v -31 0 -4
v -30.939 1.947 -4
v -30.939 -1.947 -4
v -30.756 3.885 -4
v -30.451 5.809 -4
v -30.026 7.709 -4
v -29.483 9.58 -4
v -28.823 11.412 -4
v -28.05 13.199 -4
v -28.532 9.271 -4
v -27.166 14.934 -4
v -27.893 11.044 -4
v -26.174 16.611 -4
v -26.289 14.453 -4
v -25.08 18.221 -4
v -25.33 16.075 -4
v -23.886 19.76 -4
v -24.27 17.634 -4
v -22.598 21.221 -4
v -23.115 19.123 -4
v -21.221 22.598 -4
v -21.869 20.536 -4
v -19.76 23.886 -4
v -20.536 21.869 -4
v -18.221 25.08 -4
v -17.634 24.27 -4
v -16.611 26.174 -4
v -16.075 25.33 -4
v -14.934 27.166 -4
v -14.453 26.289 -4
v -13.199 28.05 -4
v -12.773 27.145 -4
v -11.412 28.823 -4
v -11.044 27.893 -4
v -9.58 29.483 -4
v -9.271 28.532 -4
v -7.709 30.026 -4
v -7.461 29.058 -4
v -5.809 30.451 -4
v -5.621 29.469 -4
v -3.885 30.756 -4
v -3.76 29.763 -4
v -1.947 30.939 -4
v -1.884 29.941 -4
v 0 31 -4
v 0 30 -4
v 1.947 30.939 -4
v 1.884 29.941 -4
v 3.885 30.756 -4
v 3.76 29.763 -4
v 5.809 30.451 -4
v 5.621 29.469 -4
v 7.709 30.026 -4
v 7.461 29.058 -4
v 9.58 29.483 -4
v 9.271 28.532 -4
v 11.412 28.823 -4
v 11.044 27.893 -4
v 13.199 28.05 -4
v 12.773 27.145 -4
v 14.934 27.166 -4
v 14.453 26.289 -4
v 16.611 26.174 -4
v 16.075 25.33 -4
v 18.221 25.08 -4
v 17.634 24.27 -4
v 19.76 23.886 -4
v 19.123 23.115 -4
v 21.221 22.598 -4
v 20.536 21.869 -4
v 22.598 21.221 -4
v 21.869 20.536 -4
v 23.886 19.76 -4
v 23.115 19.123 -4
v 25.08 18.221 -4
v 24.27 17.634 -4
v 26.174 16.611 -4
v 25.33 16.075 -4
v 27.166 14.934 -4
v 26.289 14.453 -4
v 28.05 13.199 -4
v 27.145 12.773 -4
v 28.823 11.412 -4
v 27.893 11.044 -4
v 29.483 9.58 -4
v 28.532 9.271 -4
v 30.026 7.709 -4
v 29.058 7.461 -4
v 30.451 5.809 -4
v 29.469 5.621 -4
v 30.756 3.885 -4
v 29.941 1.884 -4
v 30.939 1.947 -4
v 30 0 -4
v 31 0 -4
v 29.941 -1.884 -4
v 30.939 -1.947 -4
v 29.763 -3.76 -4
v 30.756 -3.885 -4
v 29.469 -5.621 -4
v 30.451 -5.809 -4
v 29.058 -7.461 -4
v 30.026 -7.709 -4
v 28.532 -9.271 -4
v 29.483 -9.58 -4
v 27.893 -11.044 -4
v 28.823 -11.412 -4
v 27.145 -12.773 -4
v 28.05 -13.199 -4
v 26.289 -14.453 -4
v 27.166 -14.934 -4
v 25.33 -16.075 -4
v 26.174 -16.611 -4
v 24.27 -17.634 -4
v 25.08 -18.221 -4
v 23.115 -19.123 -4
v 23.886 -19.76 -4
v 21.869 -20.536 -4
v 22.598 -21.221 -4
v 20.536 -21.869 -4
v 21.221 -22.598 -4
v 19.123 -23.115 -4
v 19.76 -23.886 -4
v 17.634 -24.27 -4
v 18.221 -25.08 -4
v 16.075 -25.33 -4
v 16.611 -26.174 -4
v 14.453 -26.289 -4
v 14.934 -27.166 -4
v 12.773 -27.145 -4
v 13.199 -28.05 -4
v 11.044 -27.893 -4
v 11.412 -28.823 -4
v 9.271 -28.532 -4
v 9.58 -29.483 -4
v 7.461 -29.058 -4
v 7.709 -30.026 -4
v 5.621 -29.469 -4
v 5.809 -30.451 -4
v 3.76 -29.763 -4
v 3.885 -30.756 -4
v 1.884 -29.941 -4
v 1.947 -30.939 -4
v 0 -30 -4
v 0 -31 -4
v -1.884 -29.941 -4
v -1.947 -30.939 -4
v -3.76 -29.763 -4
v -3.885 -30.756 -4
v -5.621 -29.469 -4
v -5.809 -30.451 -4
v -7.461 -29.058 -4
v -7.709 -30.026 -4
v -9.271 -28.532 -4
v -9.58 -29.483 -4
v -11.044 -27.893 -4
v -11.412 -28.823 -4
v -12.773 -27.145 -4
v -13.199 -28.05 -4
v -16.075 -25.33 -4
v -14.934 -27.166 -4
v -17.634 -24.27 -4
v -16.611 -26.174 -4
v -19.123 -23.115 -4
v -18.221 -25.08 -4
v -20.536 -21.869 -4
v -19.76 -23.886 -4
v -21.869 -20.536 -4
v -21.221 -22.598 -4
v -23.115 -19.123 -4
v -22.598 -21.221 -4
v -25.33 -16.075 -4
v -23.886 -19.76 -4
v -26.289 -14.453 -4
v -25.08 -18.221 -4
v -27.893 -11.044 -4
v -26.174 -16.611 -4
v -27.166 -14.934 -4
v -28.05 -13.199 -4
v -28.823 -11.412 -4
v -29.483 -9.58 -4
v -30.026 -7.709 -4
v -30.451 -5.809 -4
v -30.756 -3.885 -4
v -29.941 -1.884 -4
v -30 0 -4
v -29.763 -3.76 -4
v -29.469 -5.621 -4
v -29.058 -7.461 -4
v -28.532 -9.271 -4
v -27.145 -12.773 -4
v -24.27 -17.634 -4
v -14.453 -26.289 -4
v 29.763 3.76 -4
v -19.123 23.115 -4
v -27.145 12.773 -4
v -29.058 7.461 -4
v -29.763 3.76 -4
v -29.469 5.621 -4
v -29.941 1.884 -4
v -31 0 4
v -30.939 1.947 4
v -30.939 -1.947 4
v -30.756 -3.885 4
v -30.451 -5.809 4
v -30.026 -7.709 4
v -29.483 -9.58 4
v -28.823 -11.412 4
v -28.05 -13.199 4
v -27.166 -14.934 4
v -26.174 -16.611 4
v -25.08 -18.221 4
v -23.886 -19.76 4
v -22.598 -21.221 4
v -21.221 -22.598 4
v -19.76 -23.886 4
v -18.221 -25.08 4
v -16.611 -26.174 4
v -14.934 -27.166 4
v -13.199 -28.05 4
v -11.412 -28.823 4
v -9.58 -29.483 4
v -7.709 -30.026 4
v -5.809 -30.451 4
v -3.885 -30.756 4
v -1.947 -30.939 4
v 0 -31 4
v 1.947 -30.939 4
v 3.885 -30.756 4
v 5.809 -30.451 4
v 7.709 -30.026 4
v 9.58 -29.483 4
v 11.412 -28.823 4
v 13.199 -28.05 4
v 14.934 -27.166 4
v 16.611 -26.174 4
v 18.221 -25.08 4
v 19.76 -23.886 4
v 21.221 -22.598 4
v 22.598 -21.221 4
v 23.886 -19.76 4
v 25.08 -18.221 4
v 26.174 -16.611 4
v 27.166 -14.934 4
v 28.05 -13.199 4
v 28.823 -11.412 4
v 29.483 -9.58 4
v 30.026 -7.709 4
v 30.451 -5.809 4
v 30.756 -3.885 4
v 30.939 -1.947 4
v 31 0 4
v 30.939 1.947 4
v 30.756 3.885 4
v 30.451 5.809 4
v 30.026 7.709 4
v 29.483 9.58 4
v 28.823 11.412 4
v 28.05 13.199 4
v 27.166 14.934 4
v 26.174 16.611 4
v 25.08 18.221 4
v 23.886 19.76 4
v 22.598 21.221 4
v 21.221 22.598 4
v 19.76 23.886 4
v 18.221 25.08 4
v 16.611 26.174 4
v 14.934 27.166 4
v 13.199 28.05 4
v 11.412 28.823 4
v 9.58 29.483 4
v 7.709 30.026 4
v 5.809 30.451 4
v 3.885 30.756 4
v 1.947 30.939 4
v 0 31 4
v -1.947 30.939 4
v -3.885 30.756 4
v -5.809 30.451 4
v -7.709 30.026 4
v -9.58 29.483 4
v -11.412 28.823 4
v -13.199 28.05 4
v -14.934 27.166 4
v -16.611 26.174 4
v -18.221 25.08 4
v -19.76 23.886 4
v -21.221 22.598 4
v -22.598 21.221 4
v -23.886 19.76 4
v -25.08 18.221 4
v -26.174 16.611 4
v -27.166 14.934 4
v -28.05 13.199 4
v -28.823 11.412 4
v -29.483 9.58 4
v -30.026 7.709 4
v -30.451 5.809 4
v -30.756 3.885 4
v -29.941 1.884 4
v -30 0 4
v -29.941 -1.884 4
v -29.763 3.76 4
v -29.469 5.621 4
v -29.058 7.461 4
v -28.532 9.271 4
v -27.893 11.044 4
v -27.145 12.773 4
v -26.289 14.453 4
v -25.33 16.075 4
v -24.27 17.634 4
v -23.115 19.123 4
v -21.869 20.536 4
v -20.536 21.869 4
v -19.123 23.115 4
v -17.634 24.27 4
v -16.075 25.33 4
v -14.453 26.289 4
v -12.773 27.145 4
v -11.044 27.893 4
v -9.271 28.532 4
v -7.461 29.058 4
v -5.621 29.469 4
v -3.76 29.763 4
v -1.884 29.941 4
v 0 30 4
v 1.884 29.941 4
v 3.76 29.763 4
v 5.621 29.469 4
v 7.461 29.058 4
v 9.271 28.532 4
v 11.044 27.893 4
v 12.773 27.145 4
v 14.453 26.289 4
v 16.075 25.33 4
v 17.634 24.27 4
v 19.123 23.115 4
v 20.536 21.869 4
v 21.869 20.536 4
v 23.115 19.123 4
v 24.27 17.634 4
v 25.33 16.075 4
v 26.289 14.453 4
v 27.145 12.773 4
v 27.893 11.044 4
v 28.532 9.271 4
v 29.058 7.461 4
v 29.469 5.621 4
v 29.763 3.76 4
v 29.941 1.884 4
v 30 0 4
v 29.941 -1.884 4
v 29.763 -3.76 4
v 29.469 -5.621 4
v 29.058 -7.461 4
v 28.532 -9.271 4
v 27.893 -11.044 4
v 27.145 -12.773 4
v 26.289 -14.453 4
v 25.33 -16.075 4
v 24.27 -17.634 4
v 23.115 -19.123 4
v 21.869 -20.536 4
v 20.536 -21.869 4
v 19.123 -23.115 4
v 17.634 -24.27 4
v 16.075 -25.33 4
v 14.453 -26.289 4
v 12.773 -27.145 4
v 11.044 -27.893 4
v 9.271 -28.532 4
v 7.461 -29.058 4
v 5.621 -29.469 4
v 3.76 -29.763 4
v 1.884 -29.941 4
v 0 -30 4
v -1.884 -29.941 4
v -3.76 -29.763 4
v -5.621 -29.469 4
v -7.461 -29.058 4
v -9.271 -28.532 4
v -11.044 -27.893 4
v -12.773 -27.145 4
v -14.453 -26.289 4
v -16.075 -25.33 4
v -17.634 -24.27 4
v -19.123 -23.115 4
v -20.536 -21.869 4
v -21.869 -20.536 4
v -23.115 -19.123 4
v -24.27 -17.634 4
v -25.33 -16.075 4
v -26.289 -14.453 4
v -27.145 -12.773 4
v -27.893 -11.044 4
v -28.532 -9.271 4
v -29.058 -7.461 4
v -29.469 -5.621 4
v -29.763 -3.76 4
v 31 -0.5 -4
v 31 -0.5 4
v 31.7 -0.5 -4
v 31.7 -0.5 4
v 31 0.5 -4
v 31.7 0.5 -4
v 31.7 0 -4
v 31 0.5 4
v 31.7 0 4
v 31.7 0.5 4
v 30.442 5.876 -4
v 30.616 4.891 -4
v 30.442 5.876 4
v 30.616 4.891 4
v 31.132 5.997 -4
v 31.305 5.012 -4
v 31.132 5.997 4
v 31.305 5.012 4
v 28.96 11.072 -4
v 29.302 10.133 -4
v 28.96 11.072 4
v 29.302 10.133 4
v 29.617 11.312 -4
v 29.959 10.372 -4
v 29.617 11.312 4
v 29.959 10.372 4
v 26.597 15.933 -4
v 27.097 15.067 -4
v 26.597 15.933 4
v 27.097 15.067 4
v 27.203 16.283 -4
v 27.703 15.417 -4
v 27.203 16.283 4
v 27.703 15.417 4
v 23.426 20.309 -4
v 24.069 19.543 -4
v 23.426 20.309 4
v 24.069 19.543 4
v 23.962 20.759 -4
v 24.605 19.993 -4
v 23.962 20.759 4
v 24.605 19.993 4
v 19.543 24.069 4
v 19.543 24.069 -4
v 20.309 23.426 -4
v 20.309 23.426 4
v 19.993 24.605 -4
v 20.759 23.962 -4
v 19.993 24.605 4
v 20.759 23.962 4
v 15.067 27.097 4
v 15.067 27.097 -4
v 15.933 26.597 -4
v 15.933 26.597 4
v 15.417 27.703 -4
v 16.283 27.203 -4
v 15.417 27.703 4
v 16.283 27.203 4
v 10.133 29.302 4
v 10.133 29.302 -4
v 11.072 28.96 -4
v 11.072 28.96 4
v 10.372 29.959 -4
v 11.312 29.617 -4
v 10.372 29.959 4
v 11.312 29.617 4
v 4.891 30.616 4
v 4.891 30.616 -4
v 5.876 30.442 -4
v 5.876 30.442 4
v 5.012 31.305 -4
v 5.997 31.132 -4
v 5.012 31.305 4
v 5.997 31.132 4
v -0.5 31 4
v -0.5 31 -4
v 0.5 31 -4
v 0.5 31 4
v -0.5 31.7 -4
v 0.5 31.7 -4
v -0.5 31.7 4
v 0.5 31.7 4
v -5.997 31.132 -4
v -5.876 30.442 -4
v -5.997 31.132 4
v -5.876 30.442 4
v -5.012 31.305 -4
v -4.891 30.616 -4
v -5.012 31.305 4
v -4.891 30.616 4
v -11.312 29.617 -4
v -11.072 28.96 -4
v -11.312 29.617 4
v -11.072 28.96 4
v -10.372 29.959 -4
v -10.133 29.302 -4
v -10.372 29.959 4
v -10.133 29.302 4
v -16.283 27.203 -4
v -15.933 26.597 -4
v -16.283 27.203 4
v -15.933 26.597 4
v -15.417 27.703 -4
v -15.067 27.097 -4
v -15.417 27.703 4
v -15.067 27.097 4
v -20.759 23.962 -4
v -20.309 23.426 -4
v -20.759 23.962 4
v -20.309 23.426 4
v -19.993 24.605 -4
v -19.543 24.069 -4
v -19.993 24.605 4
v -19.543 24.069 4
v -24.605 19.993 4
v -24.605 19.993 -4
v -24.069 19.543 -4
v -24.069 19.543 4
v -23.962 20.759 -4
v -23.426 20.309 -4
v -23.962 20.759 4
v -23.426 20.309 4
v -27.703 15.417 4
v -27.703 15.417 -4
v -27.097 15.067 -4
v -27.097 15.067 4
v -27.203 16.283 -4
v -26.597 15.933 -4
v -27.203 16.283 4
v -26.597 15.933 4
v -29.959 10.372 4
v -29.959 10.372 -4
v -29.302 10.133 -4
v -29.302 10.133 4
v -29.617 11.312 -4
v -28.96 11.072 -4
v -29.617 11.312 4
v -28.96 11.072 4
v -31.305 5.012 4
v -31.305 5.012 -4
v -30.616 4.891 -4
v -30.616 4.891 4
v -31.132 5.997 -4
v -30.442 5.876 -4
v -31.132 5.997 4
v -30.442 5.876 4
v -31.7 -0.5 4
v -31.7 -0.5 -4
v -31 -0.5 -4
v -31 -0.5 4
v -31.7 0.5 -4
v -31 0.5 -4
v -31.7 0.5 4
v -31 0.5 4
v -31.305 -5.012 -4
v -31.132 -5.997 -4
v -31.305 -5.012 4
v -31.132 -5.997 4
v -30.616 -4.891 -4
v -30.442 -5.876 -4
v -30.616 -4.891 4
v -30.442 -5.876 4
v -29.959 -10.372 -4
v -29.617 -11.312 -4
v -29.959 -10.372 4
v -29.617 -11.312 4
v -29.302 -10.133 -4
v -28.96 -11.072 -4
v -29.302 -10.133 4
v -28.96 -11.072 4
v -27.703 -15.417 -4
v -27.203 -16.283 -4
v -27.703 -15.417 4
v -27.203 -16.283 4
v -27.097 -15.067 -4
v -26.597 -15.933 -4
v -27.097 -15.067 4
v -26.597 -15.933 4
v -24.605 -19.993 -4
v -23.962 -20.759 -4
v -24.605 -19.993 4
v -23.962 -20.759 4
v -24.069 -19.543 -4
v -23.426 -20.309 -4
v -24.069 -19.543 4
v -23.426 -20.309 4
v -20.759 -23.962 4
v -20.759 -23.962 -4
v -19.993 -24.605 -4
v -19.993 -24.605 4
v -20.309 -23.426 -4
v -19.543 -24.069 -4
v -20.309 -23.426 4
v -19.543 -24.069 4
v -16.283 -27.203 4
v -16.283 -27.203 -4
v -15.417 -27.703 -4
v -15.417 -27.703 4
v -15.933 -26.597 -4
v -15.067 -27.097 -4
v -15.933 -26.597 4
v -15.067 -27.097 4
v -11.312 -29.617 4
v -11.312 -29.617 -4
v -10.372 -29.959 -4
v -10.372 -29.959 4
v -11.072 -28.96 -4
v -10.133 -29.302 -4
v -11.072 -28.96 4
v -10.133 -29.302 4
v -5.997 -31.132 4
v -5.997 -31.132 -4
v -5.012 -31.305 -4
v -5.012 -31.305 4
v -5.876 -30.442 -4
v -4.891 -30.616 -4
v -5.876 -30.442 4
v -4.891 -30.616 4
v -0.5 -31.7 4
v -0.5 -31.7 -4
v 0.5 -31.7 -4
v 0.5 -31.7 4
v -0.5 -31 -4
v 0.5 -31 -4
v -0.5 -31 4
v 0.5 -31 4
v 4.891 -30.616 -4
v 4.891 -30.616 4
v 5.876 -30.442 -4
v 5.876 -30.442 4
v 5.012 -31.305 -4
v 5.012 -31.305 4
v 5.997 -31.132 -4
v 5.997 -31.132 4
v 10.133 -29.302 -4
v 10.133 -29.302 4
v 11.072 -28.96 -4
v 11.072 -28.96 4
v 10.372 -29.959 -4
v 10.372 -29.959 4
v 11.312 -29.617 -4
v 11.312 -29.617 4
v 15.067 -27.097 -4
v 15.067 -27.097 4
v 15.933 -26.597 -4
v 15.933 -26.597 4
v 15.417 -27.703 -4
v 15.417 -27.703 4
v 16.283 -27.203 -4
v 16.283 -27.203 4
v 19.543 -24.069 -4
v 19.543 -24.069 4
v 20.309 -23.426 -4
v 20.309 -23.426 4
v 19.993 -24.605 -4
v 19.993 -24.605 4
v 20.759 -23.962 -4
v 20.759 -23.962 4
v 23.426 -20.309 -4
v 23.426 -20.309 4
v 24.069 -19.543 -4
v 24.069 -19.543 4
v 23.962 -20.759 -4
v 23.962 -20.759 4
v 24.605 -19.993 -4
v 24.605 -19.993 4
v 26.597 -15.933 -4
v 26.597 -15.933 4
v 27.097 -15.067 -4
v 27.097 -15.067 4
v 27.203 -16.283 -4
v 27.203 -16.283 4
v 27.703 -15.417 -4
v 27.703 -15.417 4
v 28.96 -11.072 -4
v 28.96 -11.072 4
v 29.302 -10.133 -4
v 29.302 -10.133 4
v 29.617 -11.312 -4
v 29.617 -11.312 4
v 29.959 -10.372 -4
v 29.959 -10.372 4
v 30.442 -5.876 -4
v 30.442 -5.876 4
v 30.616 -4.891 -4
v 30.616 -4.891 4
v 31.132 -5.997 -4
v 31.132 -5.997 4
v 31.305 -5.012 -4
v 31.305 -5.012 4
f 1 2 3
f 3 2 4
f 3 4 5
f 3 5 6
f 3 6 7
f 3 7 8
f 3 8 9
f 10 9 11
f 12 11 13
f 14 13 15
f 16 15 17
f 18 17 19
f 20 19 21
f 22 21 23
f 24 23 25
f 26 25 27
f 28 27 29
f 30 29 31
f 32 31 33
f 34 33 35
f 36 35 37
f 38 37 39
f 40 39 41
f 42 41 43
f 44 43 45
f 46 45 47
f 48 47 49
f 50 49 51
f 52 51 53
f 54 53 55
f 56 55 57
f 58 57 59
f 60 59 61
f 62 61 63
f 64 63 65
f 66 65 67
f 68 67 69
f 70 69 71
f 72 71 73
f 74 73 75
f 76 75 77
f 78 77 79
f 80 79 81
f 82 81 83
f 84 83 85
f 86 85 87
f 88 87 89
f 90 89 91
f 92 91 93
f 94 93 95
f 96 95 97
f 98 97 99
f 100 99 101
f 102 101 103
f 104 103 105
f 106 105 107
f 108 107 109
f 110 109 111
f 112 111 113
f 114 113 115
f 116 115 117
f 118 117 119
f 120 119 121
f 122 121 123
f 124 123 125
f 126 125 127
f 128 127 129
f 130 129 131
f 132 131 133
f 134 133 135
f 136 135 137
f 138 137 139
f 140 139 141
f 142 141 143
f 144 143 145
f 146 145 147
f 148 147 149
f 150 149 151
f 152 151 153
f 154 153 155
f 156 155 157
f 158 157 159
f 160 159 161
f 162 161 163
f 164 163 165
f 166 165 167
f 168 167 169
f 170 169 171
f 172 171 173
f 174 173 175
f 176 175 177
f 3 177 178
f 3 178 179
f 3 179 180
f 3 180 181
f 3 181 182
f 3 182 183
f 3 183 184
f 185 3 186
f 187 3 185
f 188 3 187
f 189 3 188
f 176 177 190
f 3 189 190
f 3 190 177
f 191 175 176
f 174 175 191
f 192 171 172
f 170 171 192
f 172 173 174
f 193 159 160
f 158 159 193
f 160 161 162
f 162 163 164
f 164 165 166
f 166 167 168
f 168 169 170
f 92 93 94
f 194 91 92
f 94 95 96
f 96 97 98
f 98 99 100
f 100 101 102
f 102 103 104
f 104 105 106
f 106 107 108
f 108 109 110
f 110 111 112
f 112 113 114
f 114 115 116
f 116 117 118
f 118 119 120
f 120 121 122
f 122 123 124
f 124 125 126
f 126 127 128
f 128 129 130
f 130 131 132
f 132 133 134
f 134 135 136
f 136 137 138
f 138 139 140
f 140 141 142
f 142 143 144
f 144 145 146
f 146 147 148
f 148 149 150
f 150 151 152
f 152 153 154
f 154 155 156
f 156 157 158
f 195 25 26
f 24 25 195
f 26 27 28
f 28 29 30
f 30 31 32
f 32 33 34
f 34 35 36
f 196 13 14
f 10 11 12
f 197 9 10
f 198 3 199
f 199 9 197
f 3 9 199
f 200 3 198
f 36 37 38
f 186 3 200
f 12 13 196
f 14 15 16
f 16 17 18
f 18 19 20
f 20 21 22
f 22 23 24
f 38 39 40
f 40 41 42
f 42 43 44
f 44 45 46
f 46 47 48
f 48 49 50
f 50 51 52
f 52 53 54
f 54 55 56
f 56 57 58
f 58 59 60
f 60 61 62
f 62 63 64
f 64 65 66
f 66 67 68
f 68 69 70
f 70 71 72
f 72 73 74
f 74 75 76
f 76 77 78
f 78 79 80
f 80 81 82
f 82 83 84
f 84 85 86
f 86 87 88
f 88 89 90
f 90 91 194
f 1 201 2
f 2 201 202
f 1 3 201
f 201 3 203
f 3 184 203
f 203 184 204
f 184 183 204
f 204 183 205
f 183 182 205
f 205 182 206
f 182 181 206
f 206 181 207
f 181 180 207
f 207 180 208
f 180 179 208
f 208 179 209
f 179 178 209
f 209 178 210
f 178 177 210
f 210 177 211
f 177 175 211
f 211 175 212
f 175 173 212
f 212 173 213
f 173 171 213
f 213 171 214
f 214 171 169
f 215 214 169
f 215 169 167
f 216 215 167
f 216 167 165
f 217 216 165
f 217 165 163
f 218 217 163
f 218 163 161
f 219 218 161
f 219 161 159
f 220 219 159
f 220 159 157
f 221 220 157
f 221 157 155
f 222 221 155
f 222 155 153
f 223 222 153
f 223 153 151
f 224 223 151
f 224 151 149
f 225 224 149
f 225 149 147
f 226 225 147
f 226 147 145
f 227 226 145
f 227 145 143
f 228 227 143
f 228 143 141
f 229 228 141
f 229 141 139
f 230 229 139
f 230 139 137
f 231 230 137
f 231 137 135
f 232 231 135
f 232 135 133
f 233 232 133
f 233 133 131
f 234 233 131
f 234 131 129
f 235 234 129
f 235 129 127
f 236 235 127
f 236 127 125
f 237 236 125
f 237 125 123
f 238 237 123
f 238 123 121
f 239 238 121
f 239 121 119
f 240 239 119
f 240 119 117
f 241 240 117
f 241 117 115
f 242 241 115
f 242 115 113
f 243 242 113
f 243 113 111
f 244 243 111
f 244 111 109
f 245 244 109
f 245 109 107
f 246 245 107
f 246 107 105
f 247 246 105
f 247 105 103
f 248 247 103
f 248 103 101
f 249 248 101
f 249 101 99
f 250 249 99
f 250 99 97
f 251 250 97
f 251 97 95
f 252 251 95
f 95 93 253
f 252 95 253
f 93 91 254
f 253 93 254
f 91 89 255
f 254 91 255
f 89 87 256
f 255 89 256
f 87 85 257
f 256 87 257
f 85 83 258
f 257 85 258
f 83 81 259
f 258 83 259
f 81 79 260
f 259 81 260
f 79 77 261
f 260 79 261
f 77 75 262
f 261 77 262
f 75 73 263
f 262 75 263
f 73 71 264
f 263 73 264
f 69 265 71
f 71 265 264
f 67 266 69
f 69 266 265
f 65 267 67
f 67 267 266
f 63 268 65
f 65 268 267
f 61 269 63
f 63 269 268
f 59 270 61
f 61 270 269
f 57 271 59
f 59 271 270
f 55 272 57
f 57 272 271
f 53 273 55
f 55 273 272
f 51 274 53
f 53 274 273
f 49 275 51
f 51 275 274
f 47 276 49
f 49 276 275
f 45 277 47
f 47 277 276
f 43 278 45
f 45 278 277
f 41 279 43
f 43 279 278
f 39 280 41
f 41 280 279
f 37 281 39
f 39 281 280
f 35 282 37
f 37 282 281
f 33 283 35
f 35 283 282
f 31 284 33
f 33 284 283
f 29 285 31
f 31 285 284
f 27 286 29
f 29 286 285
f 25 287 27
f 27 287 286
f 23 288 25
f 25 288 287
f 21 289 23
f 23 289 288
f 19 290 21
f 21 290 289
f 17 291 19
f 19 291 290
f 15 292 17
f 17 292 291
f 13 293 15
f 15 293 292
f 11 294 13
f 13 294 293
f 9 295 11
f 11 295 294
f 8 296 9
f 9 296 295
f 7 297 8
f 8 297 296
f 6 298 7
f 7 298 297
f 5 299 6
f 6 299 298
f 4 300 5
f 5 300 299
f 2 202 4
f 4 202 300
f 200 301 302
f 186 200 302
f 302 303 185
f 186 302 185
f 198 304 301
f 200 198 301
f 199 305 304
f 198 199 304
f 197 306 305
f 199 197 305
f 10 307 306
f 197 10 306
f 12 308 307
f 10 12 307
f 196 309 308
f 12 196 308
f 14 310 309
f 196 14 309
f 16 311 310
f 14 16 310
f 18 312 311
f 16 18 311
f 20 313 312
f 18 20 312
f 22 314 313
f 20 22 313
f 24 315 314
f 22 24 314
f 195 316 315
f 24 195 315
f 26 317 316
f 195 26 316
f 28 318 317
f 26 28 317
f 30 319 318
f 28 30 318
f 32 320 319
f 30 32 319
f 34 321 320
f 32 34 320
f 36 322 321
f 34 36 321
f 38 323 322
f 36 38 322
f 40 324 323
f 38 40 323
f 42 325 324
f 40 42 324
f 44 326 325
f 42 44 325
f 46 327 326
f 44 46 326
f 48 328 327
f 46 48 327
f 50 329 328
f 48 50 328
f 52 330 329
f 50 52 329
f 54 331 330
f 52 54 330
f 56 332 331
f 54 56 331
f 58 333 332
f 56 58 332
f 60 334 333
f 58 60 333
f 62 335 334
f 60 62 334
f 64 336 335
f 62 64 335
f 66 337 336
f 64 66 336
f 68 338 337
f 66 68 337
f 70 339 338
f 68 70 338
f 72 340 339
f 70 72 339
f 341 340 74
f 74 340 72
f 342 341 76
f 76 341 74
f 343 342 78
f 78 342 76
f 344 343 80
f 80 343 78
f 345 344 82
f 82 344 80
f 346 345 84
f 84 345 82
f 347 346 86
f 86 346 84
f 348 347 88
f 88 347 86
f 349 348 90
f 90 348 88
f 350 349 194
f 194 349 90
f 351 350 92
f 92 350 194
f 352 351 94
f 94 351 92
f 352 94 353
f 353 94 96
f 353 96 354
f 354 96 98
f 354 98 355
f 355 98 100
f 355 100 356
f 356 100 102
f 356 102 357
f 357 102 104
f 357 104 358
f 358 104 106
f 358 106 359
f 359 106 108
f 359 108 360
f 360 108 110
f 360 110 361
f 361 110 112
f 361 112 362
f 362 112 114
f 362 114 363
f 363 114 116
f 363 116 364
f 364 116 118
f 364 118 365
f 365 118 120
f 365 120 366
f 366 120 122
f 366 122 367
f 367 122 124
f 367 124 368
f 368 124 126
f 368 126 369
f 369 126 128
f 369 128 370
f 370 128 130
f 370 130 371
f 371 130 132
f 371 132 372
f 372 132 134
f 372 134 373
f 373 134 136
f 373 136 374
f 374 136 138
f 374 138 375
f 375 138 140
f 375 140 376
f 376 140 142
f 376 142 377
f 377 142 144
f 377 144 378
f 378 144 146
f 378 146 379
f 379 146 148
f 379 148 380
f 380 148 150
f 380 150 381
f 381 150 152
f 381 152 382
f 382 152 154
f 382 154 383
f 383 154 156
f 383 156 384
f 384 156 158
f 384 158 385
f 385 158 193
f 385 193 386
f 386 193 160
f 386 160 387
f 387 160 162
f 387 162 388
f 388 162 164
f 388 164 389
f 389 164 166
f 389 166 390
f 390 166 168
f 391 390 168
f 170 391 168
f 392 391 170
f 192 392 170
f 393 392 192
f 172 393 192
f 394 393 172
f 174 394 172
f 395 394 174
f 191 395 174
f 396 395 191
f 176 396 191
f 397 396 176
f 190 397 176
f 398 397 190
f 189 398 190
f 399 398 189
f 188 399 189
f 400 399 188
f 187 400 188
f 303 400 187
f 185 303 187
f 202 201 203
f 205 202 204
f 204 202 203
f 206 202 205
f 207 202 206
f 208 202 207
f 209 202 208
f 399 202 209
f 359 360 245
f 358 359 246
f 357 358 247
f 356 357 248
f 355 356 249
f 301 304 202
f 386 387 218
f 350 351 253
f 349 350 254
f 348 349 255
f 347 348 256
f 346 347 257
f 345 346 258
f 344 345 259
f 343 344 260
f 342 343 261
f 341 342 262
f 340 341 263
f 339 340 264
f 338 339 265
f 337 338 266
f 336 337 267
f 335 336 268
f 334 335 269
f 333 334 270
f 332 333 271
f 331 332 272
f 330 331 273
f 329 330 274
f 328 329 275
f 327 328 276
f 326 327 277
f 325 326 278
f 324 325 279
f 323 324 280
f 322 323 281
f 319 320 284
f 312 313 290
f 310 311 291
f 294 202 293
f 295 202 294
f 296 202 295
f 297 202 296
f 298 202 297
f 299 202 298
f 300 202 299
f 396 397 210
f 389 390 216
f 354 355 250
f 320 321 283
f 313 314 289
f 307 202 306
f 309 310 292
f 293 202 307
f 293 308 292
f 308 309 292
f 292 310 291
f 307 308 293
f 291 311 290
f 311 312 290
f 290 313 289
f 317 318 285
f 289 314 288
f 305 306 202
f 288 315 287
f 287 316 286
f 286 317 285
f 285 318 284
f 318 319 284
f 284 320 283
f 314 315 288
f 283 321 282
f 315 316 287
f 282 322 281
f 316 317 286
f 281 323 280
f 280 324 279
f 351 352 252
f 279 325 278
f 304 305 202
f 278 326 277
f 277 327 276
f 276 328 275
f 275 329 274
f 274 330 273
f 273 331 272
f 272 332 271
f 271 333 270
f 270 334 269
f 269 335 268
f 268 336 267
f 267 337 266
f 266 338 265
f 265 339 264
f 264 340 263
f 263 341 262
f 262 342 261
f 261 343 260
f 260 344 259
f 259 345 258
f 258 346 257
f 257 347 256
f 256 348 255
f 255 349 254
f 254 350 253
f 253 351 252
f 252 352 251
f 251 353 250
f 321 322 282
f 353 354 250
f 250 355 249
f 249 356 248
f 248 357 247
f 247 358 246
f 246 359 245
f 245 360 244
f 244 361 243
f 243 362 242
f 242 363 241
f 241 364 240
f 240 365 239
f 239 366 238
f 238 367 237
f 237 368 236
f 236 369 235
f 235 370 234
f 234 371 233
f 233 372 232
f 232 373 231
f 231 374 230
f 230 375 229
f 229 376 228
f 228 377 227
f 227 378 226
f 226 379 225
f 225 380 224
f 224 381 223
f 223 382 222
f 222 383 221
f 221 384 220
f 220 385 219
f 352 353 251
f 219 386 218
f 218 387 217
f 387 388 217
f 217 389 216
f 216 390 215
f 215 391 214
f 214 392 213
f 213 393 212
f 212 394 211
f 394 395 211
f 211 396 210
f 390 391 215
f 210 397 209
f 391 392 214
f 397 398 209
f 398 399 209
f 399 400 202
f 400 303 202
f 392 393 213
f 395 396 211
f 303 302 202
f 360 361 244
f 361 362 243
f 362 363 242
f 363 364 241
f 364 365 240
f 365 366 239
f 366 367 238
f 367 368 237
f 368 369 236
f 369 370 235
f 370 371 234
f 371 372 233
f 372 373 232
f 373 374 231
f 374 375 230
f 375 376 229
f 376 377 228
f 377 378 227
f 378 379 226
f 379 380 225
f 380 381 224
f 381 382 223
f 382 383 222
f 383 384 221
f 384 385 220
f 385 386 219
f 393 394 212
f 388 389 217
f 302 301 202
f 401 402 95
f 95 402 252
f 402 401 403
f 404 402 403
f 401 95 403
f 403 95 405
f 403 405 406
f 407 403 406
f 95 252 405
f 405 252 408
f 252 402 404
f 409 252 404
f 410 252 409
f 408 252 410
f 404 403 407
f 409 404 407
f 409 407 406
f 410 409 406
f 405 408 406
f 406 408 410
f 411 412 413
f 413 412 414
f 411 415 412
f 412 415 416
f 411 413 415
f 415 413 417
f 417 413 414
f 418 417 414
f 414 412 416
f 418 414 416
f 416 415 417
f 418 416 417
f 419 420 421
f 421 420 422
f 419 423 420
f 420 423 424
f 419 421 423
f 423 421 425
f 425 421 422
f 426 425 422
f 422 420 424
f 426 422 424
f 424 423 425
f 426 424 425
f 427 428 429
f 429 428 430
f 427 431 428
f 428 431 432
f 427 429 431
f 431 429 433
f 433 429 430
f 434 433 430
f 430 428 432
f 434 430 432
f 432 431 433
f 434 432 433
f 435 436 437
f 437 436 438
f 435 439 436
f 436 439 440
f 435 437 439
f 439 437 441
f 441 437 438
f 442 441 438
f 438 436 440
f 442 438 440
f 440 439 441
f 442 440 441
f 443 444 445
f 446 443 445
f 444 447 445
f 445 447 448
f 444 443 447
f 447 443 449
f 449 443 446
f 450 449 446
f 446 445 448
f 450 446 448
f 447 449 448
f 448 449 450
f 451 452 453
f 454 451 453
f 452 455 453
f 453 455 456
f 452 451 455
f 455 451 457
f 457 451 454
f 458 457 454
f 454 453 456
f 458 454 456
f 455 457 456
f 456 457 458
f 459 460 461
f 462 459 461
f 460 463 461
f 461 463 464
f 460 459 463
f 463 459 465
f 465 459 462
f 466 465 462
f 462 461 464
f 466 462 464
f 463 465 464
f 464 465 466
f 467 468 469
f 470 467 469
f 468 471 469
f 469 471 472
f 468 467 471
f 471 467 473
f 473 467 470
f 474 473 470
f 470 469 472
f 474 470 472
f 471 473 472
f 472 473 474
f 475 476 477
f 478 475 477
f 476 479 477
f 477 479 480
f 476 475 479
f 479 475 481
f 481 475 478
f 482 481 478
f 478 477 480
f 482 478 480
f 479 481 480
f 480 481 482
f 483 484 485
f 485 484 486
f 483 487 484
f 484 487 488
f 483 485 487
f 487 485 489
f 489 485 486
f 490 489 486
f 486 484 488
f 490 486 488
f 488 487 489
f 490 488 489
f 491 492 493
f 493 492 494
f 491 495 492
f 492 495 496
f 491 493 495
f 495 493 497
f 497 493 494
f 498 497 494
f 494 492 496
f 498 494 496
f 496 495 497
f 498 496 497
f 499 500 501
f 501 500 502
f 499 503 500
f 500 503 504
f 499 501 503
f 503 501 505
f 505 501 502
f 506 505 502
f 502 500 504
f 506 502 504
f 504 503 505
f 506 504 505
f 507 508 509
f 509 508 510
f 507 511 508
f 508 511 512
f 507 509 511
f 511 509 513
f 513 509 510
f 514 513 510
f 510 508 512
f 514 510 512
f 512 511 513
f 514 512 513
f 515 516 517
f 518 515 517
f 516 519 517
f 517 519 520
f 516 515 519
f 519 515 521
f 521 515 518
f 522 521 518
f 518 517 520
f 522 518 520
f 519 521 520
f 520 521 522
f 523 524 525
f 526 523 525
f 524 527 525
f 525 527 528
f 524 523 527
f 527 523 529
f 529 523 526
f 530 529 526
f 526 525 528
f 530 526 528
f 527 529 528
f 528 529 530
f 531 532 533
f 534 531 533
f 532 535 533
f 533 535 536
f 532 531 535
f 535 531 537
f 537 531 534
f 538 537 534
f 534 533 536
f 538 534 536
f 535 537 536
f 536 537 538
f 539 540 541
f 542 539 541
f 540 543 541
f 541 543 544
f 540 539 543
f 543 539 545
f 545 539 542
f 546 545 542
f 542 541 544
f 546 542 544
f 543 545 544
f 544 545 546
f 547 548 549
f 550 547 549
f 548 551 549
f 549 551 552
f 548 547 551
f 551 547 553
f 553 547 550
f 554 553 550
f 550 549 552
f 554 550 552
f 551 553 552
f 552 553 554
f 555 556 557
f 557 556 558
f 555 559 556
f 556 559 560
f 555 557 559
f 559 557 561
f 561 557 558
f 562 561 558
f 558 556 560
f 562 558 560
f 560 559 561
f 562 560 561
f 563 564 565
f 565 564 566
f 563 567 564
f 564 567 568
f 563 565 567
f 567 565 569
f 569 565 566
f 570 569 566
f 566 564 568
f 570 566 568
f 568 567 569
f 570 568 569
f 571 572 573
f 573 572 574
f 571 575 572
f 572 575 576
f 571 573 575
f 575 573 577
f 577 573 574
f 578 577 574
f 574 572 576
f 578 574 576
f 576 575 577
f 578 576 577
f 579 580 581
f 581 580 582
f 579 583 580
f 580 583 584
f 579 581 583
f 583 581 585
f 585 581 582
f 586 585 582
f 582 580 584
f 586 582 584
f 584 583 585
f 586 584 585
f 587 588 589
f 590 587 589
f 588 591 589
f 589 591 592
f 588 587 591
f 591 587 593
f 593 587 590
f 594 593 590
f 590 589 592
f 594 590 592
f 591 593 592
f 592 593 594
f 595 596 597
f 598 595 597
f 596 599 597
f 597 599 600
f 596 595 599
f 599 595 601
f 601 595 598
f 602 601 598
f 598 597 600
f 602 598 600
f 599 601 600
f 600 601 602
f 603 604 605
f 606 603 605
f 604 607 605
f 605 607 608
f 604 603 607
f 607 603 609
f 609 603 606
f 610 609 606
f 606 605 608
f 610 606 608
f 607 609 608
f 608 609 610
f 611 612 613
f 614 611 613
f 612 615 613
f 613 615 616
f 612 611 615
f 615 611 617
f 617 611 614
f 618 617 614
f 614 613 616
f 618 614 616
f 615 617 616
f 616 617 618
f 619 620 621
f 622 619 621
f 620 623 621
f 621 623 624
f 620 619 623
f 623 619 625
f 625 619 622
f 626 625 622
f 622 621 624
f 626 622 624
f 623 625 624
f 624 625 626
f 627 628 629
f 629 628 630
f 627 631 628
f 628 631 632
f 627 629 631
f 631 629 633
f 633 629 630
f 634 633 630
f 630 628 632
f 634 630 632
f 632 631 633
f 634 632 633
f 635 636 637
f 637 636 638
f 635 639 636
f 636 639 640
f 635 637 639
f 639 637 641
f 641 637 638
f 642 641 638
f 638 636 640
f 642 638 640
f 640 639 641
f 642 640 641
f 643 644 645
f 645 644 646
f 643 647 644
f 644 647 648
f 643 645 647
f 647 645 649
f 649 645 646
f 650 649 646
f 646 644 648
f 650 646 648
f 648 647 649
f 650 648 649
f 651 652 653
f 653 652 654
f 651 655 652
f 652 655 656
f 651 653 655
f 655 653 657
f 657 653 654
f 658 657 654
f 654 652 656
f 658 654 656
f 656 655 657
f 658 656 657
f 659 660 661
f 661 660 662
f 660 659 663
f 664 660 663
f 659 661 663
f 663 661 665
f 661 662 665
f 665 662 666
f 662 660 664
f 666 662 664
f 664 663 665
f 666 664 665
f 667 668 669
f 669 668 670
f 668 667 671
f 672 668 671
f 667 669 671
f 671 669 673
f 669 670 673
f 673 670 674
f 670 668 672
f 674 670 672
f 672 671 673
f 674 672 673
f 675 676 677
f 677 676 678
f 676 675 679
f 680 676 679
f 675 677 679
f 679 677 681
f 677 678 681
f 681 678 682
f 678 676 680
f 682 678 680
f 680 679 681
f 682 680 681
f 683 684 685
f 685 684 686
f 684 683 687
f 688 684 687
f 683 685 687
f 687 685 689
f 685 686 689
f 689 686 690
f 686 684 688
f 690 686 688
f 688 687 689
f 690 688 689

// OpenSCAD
tread_type = "simple";
tread_angle = 10;
tread_height = 0.5;
tread_width = 1;
tire_thickness = 1;

// Same as BasWheel parameters
wheel_diameter = 60;
wheel_height = 10;
rim_height = 1;

/*
 *
 * BasTire v1.01
 *
 * by Basile Laderchi
 *
 * Licensed under Creative Commons Attribution-ShareAlike 3.0 Unported http://creativecommons.org/licenses/by-sa/3.0/
 *
 * v 1.01, 27 August 2013 : Fixed invalid Manifold
 * v 1.00, 27 August 2013 : Initial release
 *
 */

basTire(tread_type, tread_angle, tread_height, tread_width, tire_thickness, wheel_diameter, wheel_height, rim_height, $fn=100);

module basTire(tread_type, tread_angle, tread_height, tread_width, tire_thickness, wheel_diameter, wheel_height, rim_height) {
	union() {
		tire(tire_thickness, wheel_diameter, wheel_height, rim_height);
		tread(tread_type, tread_angle, tread_height, tread_width, tire_thickness, wheel_diameter, wheel_height, rim_height);
	}
}

module tire(thickness, wheel_diameter, wheel_height, rim_height) {
	wheel_radius = wheel_diameter / 2;
	radius = wheel_radius + thickness;
	height = wheel_height - rim_height * 2;

	ring(radius, thickness, height);
}

module tread(type, angle, height, width, tire_thickness, wheel_diameter, wheel_height, rim_height) {
	padding = 0.1;

	wheel_radius = wheel_diameter / 2;
	tire_radius = wheel_radius + tire_thickness;
	tire_height = wheel_height - rim_height * 2;

	if (type == "simple") {
	  for (i = [0 : 360 / angle]) {
			rotate([0, 0, i * angle]) {
				translate([tire_radius + height / 2 + padding, 0, 0]) {
					cube([height + padding * 2, width, tire_height], center=true);
				}
			}
		}
	}
}

module ring(radius, thickness, height) {
	padding = 0.1;

	inner_radius = radius - thickness;

	difference() {
		cylinder(r=radius, h=height, center=true);
		cylinder(r=inner_radius, h=height + padding, center=true);
	}
}
